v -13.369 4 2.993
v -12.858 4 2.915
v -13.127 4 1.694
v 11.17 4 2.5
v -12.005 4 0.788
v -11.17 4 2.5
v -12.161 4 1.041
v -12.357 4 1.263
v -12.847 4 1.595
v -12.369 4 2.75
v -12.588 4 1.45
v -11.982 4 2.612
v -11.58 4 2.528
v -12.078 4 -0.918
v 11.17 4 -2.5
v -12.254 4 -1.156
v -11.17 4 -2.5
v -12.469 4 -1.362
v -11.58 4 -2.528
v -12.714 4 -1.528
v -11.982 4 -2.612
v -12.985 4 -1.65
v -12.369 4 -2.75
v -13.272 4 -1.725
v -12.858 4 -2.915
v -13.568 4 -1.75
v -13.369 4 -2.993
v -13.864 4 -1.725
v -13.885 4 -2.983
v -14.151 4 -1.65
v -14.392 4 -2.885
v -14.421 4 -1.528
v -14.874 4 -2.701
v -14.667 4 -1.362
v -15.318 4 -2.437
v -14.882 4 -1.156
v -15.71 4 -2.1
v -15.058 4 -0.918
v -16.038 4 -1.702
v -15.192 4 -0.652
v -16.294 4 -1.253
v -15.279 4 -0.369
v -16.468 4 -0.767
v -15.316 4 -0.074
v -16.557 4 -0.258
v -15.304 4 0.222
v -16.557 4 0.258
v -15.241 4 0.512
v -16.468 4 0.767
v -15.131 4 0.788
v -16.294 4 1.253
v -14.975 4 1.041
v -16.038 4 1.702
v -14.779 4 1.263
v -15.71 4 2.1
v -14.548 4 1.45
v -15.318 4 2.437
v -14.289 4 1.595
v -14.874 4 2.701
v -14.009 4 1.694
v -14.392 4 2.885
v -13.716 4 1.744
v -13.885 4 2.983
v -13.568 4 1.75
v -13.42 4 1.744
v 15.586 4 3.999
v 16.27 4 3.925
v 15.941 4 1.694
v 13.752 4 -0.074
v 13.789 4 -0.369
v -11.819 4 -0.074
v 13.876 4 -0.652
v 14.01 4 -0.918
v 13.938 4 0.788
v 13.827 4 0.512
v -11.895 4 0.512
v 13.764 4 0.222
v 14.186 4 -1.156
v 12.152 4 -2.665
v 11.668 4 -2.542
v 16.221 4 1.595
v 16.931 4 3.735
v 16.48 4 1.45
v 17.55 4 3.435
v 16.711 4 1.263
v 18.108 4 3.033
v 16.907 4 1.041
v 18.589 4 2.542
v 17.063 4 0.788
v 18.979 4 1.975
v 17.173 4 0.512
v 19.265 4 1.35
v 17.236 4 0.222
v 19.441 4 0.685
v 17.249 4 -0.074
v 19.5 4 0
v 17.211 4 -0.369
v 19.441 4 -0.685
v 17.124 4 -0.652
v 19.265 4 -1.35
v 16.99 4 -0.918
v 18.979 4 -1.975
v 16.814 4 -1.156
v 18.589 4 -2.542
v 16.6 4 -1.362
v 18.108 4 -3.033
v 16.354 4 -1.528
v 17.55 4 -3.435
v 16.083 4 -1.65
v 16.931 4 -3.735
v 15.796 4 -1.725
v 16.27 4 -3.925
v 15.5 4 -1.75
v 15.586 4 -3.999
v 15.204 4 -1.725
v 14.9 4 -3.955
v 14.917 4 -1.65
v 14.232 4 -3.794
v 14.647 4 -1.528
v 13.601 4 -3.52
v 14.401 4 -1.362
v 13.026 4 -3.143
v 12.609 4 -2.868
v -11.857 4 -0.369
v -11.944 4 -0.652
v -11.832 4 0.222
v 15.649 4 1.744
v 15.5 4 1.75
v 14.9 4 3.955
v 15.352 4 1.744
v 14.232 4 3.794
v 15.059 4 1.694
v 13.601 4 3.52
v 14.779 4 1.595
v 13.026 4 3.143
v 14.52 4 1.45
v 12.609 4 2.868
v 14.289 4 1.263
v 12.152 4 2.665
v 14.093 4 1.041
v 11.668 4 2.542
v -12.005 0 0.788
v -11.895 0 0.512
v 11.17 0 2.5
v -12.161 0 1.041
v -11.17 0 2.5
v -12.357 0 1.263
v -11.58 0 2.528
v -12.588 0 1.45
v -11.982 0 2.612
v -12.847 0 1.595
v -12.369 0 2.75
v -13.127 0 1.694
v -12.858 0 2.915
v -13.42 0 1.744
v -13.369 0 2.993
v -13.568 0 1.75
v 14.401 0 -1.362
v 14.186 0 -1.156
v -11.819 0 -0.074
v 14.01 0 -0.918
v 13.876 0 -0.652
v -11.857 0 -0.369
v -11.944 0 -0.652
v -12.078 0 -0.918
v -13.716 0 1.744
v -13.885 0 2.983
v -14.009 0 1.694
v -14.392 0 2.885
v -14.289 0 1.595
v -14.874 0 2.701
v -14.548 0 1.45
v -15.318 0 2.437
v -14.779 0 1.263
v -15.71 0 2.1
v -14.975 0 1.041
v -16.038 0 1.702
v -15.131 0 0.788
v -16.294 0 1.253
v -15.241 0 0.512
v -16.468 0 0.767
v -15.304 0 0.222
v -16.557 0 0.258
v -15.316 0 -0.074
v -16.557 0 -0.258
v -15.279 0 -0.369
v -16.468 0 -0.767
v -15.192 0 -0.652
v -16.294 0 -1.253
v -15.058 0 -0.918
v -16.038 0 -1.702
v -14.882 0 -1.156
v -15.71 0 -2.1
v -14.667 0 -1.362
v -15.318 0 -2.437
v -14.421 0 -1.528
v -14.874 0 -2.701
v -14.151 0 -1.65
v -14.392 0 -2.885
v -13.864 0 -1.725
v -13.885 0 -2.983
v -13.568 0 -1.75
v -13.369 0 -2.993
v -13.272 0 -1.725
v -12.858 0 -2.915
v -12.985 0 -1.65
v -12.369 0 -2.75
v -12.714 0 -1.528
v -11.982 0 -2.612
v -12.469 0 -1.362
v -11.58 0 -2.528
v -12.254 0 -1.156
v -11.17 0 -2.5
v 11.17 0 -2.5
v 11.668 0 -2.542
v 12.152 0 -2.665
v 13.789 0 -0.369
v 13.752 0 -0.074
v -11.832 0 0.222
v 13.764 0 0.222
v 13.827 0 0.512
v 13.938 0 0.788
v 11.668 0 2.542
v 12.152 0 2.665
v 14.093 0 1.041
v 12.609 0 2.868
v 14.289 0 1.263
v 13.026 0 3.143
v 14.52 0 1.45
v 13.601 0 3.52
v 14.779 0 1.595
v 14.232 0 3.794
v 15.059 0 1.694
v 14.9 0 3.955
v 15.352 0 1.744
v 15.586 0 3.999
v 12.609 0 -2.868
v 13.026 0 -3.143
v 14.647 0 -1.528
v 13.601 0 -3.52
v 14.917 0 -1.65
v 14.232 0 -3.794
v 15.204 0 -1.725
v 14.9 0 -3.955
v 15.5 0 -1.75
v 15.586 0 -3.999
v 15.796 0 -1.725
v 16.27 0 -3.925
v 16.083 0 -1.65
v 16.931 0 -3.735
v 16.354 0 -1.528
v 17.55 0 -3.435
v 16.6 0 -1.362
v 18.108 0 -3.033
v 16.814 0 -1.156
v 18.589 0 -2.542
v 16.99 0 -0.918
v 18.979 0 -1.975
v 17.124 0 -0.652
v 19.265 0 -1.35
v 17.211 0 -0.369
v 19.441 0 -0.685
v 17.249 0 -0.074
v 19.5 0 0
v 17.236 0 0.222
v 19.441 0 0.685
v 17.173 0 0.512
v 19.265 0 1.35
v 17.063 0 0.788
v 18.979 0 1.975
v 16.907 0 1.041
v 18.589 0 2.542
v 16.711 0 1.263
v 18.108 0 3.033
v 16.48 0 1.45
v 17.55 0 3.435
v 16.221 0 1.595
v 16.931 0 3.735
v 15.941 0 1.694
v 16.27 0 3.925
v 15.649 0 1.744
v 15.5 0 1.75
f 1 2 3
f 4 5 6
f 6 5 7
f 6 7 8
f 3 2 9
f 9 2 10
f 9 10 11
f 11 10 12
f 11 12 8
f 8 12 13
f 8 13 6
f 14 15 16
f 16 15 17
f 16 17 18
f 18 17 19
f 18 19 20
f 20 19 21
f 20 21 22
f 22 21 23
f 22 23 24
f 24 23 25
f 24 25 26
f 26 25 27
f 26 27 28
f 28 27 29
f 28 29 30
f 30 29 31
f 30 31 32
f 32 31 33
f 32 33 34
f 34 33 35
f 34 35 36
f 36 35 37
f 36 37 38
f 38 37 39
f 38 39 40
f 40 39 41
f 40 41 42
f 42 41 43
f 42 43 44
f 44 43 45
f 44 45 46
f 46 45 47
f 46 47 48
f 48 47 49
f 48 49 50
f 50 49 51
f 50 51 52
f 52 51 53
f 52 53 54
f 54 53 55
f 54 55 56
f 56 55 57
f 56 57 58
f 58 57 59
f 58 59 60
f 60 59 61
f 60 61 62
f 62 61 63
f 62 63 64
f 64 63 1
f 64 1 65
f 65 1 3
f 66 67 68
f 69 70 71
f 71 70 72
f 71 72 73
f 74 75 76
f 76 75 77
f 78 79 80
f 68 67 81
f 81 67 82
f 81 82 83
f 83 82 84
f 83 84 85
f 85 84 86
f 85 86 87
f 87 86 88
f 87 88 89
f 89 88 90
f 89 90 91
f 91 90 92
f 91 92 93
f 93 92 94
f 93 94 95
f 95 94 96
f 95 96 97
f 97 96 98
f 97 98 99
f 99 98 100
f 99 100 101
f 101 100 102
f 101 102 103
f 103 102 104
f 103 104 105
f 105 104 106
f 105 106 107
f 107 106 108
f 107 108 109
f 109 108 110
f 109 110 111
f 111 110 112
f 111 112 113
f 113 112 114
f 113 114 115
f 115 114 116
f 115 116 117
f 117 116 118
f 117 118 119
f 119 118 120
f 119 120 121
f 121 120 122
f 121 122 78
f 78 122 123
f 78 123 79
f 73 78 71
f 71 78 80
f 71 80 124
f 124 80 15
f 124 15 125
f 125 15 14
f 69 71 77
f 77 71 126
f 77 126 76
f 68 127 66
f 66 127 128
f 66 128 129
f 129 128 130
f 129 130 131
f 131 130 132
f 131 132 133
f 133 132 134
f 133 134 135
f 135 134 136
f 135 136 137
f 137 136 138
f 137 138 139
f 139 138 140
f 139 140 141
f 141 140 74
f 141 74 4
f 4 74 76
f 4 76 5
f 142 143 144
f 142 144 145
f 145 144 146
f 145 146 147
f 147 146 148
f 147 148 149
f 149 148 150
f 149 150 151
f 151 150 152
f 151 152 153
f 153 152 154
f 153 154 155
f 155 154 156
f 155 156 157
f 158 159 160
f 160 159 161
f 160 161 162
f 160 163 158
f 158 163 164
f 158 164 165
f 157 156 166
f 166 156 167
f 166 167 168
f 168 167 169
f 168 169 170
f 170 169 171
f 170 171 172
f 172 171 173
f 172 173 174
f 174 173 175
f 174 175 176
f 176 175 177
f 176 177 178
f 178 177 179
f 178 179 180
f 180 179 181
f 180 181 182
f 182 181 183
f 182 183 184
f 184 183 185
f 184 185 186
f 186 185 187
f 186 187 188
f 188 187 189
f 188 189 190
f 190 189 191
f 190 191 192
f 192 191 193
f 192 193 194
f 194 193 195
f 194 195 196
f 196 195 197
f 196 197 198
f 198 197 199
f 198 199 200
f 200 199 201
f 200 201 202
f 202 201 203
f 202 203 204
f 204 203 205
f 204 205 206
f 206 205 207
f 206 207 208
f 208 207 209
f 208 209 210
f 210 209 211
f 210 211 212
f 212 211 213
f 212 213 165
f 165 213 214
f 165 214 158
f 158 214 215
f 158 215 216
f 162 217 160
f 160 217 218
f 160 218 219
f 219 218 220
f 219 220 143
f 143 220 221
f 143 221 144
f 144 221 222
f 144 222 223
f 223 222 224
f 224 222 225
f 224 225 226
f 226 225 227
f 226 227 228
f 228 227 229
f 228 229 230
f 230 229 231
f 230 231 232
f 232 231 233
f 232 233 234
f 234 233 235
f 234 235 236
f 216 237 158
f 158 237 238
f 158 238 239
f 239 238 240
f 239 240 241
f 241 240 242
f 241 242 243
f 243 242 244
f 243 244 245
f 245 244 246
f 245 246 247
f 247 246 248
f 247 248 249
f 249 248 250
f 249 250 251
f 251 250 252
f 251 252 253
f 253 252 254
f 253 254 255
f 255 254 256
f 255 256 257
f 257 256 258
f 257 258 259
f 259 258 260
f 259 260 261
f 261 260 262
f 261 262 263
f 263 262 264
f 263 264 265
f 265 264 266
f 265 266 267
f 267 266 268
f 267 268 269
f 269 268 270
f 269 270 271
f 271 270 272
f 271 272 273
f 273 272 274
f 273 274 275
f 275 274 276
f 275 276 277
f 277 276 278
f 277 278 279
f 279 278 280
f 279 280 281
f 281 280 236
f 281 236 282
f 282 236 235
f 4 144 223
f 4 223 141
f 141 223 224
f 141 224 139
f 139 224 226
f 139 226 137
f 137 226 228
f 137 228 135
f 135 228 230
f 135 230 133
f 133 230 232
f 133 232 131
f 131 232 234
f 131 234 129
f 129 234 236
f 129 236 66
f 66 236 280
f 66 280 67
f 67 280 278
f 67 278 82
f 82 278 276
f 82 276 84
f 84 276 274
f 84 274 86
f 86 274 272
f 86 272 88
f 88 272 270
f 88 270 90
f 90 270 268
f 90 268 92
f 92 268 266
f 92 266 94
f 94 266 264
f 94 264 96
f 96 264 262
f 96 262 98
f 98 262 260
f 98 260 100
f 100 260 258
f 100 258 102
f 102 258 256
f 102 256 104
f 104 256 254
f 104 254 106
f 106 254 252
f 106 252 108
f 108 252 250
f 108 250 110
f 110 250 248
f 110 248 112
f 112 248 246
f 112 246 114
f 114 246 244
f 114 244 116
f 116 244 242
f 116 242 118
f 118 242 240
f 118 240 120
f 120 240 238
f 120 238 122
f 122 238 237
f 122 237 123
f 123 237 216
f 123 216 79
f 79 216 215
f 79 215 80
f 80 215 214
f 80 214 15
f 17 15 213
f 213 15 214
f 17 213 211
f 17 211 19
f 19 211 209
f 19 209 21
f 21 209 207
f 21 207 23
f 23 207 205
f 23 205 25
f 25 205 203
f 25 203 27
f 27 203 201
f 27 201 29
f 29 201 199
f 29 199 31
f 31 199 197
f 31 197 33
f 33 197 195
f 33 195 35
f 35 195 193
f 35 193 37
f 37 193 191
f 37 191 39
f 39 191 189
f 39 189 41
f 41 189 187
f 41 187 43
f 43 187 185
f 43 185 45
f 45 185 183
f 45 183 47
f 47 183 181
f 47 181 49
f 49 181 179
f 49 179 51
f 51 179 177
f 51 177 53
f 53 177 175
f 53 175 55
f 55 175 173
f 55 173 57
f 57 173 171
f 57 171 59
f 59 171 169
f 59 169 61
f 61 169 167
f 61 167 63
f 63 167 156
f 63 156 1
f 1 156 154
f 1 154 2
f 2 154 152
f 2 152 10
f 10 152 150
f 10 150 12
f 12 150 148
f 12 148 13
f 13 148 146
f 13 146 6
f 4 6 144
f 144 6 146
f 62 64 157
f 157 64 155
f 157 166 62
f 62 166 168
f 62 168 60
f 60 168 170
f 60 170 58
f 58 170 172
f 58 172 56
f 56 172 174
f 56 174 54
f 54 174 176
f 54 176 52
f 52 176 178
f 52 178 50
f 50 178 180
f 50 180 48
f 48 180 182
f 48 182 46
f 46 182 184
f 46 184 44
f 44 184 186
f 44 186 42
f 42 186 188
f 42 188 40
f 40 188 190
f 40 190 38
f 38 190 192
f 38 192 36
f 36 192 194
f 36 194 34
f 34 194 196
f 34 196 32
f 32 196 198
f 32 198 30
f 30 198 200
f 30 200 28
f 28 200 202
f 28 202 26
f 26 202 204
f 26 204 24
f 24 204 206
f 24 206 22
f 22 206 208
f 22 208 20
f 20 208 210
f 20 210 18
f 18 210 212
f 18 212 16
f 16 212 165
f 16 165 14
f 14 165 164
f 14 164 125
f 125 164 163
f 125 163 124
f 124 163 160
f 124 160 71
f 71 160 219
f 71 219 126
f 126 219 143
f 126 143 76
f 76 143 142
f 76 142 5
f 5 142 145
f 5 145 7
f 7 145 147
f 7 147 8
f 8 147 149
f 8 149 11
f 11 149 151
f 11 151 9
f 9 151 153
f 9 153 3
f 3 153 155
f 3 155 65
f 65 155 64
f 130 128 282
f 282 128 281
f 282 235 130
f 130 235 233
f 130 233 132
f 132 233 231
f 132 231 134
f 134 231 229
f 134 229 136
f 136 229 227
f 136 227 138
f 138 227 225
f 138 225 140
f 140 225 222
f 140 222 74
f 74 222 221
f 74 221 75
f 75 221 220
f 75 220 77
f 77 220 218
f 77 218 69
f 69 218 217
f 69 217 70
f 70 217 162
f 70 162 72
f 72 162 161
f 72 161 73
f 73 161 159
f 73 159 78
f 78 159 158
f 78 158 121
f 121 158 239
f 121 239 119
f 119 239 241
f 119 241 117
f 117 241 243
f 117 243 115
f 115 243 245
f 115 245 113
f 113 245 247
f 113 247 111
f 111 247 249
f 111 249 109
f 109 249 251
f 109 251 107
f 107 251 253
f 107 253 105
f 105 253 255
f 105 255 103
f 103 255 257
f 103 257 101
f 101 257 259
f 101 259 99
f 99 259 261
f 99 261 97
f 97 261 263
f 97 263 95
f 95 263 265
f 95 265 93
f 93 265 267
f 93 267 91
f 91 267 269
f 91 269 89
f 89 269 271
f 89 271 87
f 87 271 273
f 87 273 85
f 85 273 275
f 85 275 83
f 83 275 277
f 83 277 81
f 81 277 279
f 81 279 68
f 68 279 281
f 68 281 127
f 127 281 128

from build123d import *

# Parameters (mm, degrees)
IZIM1_R                     = 1.75
Y_KSEKLIK_EKSTR_ZYON1_DEPTH = 4


with BuildPart() as part:
    # Çizim1 → Yükseklik-Ekstrüzyon1 (new body)
    with BuildSketch(Plane(origin=(0, 0, 0), x_dir=(1, 0, 0), z_dir=(0, 1, 0))):
        with BuildLine():
            Line((-10.218653411, -2.5), (4.071106479, -2.5))
            Line((4.071106479, -2.5), (11.17, -2.5))
            ThreePointArc((11.17, -2.5), (12.151980506, -2.665266452), (13.025768722, -3.142857143))
            ThreePointArc((13.025768722, -3.142857143), (19.500127019, 0), (13.025768722, 3.142857143))
            ThreePointArc((13.025768722, 3.142857143), (12.151980506, 2.665266452), (11.17, 2.5))
            Line((11.17, 2.5), (4.071106479, 2.5))
            Line((4.071106479, 2.5), (-10.218653411, 2.5))
            Line((-10.218653411, 2.5), (-11.17, 2.5))
            ThreePointArc((-11.17, 2.5), (-11.782372436, 2.563164969), (-12.368957881, 2.75))
            ThreePointArc((-12.368957881, 2.75), (-16.567915762, 0), (-12.368957881, -2.75))
            ThreePointArc((-12.368957881, -2.75), (-11.782372436, -2.563164969), (-11.17, -2.5))
            Line((-11.17, -2.5), (-10.218653411, -2.5))
        make_face()
        with Locations((-13.567915762, 0)):
            Circle(IZIM1_R, mode=Mode.SUBTRACT)
        with Locations((15.500127019, 0)):
            Circle(IZIM1_R, mode=Mode.SUBTRACT)
    extrude(amount=Y_KSEKLIK_EKSTR_ZYON1_DEPTH)


solid = part.part
